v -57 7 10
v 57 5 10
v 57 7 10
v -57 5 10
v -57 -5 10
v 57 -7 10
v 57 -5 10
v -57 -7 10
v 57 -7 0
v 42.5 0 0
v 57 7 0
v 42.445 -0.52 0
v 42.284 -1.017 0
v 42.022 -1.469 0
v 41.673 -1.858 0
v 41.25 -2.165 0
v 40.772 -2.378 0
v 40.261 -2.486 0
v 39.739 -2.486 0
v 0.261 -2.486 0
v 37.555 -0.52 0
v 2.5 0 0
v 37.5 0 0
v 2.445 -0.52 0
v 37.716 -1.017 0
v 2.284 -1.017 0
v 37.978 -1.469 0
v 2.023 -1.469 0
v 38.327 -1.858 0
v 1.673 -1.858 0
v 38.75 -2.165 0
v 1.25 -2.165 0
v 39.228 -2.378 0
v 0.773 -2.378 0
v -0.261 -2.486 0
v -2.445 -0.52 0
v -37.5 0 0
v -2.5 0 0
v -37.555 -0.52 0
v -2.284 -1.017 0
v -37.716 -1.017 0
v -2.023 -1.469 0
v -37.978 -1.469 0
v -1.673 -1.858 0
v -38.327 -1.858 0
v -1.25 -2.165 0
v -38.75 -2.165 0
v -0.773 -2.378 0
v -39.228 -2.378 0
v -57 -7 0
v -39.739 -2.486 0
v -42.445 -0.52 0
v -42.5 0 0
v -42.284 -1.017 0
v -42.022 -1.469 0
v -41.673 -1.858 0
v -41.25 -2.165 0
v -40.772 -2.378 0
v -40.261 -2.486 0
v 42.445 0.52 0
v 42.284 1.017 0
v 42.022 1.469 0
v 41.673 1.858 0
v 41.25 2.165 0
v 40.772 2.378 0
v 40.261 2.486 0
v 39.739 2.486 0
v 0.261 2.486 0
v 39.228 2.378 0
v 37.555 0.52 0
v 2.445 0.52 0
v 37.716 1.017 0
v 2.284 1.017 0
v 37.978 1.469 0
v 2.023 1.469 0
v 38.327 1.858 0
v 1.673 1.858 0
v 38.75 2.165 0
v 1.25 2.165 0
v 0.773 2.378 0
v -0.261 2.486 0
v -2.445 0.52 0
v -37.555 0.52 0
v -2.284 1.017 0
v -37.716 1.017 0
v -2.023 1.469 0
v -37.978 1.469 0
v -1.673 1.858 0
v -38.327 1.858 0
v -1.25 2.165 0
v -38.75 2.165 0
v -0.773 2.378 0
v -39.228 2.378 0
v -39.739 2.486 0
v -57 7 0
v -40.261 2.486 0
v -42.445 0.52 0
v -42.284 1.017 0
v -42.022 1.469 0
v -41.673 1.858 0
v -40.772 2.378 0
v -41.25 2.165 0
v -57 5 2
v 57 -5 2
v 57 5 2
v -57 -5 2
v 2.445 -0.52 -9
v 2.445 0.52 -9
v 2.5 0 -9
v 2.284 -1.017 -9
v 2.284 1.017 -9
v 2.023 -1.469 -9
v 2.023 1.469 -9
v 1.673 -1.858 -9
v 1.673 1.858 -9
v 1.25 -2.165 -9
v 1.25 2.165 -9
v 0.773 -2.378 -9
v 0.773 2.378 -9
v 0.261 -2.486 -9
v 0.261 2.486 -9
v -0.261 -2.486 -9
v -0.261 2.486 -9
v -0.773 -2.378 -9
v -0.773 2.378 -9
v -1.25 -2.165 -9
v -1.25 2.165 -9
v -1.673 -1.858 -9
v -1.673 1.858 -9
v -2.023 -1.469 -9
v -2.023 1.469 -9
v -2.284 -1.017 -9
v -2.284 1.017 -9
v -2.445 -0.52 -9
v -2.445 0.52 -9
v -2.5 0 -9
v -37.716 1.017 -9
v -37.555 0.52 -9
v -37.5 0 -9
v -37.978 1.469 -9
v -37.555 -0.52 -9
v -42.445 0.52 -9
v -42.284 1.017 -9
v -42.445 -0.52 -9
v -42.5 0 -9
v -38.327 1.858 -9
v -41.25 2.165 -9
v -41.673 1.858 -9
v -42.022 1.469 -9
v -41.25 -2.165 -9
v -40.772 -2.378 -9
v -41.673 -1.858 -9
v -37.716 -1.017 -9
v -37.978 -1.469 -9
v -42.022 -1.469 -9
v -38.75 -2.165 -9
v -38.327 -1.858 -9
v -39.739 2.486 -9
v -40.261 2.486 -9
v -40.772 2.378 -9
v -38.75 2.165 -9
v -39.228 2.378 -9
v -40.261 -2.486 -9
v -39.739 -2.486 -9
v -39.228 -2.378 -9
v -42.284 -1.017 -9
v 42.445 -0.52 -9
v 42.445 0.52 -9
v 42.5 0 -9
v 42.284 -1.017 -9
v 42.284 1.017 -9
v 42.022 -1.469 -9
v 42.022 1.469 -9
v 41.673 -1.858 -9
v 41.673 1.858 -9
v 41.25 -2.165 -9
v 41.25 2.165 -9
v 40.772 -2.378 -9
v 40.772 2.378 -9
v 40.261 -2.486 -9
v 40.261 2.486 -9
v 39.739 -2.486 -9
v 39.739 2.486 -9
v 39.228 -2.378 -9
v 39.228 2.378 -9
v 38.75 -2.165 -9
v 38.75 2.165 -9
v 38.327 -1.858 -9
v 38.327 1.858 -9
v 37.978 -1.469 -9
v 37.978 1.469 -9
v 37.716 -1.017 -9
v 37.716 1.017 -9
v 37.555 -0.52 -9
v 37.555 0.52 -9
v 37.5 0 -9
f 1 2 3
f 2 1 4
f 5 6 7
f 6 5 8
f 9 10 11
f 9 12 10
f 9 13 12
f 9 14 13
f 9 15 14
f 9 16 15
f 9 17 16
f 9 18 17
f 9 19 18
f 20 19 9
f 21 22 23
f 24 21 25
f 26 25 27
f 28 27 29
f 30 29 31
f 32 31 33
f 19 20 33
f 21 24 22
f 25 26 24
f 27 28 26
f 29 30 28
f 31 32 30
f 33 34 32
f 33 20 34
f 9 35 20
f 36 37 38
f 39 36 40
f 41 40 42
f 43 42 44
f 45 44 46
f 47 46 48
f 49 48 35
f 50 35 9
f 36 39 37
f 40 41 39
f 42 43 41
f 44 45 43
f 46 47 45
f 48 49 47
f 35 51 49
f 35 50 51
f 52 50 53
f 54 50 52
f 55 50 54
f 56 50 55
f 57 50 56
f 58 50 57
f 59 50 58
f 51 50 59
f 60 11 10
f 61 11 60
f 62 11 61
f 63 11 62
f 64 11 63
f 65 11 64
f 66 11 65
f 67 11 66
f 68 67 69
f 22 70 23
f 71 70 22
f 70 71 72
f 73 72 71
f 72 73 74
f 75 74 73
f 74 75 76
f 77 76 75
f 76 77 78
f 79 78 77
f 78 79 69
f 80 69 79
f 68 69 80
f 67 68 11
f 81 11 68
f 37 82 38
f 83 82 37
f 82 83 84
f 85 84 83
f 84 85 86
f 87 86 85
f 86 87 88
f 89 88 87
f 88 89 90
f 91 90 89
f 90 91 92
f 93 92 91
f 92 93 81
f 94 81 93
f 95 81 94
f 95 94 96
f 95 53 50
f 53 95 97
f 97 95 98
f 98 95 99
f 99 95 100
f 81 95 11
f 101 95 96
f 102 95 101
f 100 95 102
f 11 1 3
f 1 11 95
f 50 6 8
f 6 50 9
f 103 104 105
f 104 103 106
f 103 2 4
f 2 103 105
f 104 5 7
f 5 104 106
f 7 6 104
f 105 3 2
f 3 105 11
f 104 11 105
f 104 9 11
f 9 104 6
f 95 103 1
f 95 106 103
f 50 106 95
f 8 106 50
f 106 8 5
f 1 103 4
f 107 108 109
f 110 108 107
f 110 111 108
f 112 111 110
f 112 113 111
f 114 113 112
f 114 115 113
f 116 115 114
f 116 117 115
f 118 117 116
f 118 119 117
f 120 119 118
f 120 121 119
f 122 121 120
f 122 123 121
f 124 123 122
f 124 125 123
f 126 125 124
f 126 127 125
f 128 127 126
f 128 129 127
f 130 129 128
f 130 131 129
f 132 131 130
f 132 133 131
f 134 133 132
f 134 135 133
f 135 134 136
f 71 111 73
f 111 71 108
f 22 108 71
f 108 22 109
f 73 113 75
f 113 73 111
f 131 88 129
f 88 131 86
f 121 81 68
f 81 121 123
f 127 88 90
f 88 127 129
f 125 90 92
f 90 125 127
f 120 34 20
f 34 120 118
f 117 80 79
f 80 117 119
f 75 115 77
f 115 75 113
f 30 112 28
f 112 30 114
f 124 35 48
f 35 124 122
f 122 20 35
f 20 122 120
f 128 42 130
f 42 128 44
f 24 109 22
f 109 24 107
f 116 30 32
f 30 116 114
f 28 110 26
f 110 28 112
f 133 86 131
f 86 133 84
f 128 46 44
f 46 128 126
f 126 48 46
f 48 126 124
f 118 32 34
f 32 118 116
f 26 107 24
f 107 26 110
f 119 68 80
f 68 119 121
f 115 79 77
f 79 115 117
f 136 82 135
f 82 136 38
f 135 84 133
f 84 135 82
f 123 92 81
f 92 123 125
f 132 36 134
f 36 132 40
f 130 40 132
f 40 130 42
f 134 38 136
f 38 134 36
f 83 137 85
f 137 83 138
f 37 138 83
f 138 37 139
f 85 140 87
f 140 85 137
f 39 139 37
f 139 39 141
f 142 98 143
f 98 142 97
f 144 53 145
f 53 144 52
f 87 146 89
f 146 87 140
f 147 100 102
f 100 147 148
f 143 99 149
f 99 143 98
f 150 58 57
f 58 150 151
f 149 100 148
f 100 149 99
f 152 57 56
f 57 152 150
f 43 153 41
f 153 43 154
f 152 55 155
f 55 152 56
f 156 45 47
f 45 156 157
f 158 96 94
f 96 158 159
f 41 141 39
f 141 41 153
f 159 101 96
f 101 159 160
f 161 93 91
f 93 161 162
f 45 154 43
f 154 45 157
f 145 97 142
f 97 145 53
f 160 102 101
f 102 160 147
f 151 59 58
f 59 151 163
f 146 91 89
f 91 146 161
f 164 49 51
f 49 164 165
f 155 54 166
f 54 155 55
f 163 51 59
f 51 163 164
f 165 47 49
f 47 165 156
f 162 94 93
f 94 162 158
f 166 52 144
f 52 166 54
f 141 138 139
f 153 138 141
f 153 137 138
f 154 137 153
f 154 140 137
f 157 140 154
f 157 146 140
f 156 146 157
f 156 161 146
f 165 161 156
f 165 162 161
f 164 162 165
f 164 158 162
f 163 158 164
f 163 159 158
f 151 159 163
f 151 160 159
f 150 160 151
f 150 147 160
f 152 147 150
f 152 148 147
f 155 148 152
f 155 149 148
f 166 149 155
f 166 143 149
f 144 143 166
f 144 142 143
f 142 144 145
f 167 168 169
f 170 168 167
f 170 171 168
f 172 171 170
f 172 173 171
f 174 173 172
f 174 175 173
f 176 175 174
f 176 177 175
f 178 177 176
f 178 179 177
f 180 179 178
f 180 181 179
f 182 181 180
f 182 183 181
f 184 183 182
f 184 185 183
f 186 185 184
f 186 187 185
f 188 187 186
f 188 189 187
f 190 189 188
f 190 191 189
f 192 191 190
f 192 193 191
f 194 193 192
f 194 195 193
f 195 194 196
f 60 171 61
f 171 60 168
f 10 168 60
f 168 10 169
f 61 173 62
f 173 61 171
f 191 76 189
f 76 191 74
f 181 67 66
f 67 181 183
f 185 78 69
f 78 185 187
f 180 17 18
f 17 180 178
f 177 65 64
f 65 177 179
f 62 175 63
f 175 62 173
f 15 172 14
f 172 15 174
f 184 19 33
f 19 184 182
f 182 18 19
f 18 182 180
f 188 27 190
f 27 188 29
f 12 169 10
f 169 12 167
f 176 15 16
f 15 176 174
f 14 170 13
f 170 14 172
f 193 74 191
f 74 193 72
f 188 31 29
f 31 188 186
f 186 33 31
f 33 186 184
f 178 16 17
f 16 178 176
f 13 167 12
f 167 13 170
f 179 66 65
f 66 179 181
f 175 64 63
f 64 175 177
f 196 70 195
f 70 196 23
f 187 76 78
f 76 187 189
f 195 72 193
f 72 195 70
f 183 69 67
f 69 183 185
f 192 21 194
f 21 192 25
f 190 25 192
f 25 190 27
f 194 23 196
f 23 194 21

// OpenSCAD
// Прямой паз с шипами для вставки в основание (УДЛИНЕННАЯ ВЕРСИЯ)
// Модульная конструкция: центральное основание + 2 рукава (лево-право) + шипы

// Параметры (все размеры в мм)
center_size = 10;     // Размер центрального квадрата (внутри)
sleeve_length = 50;   // Длина рукава (удлиненная)
groove_width = 10;    // Ширина паза (внутри) - для фанеры 9.3мм
wall_height = 10;     // Высота стенок
wall_thickness = 2;   // Толщина стенок

// Параметры шипов
dowel_diameter = 5;   // Диаметр шипа
dowel_depth = 9;      // Глубина шипа (высота)
dowel_spacing = 40;   // Шаг между шипами (удлиненный)

// Вычисляемые размеры
total_width = groove_width + 2 * wall_thickness;  // 14 мм
center_total = center_size + 2 * wall_thickness;  // 14 мм

// 1. Метод: нарисовать основание
module draw_base() {
    difference() {
        cube([center_total, center_total, wall_height]);
        translate([wall_thickness, wall_thickness, wall_thickness])
            cube([center_size, center_size, wall_height]);
    }
}

// Модуль для создания одного рукава
module single_sleeve() {
    difference() {
        cube([sleeve_length, total_width, wall_height]);
        translate([0, wall_thickness, wall_thickness])
            cube([sleeve_length, groove_width, wall_height]);
    }
}

// Метод: вырезать отверстие в стенке основания
module cut_wall_opening(side) {
    if (side == 0) {
        translate([center_total - wall_thickness - 0.1, wall_thickness, wall_thickness])
            cube([wall_thickness + 0.2, groove_width, wall_height]);
    } else if (side == 2) {
        translate([-0.1, wall_thickness, wall_thickness])
            cube([wall_thickness + 0.2, groove_width, wall_height]);
    }
}

// 2. Метод: прицепить рукав к основанию
module attach_sleeve(side) {
    if (side == 0) {
        translate([center_total, center_total/2 - total_width/2, 0])
            single_sleeve();
    } else if (side == 2) {
        translate([-sleeve_length, center_total/2 - total_width/2, 0])
            single_sleeve();
    }
}

// 3. Метод: добавить шип в позиции (x, y)
module add_dowel(x, y) {
    translate([x, y, -dowel_depth])
        cylinder(h=dowel_depth, d=dowel_diameter, $fn=30);
}

// Собираем прямую конструкцию с шипами
translate([-center_total/2, -center_total/2, 0]) {
    union() {
        difference() {
            draw_base();
            cut_wall_opening(0);  // Право
            cut_wall_opening(2);  // Лево
        }
        attach_sleeve(0);  // Право
        attach_sleeve(2);  // Лево

        // Шипы: центр + лево/право
        add_dowel(center_total/2, center_total/2);                    // Центр
        add_dowel(center_total/2 - dowel_spacing, center_total/2);   // Лево
        add_dowel(center_total/2 + dowel_spacing, center_total/2);   // Право
    }
}

// Информация для проверки
echo("=== Размеры прямого паза с шипами (LONG) ===");
echo("Длина рукава:", sleeve_length, "мм");
echo("Количество шипов: 3 (центр + лево/право)");
echo("Шаг между шипами:", dowel_spacing, "мм");
